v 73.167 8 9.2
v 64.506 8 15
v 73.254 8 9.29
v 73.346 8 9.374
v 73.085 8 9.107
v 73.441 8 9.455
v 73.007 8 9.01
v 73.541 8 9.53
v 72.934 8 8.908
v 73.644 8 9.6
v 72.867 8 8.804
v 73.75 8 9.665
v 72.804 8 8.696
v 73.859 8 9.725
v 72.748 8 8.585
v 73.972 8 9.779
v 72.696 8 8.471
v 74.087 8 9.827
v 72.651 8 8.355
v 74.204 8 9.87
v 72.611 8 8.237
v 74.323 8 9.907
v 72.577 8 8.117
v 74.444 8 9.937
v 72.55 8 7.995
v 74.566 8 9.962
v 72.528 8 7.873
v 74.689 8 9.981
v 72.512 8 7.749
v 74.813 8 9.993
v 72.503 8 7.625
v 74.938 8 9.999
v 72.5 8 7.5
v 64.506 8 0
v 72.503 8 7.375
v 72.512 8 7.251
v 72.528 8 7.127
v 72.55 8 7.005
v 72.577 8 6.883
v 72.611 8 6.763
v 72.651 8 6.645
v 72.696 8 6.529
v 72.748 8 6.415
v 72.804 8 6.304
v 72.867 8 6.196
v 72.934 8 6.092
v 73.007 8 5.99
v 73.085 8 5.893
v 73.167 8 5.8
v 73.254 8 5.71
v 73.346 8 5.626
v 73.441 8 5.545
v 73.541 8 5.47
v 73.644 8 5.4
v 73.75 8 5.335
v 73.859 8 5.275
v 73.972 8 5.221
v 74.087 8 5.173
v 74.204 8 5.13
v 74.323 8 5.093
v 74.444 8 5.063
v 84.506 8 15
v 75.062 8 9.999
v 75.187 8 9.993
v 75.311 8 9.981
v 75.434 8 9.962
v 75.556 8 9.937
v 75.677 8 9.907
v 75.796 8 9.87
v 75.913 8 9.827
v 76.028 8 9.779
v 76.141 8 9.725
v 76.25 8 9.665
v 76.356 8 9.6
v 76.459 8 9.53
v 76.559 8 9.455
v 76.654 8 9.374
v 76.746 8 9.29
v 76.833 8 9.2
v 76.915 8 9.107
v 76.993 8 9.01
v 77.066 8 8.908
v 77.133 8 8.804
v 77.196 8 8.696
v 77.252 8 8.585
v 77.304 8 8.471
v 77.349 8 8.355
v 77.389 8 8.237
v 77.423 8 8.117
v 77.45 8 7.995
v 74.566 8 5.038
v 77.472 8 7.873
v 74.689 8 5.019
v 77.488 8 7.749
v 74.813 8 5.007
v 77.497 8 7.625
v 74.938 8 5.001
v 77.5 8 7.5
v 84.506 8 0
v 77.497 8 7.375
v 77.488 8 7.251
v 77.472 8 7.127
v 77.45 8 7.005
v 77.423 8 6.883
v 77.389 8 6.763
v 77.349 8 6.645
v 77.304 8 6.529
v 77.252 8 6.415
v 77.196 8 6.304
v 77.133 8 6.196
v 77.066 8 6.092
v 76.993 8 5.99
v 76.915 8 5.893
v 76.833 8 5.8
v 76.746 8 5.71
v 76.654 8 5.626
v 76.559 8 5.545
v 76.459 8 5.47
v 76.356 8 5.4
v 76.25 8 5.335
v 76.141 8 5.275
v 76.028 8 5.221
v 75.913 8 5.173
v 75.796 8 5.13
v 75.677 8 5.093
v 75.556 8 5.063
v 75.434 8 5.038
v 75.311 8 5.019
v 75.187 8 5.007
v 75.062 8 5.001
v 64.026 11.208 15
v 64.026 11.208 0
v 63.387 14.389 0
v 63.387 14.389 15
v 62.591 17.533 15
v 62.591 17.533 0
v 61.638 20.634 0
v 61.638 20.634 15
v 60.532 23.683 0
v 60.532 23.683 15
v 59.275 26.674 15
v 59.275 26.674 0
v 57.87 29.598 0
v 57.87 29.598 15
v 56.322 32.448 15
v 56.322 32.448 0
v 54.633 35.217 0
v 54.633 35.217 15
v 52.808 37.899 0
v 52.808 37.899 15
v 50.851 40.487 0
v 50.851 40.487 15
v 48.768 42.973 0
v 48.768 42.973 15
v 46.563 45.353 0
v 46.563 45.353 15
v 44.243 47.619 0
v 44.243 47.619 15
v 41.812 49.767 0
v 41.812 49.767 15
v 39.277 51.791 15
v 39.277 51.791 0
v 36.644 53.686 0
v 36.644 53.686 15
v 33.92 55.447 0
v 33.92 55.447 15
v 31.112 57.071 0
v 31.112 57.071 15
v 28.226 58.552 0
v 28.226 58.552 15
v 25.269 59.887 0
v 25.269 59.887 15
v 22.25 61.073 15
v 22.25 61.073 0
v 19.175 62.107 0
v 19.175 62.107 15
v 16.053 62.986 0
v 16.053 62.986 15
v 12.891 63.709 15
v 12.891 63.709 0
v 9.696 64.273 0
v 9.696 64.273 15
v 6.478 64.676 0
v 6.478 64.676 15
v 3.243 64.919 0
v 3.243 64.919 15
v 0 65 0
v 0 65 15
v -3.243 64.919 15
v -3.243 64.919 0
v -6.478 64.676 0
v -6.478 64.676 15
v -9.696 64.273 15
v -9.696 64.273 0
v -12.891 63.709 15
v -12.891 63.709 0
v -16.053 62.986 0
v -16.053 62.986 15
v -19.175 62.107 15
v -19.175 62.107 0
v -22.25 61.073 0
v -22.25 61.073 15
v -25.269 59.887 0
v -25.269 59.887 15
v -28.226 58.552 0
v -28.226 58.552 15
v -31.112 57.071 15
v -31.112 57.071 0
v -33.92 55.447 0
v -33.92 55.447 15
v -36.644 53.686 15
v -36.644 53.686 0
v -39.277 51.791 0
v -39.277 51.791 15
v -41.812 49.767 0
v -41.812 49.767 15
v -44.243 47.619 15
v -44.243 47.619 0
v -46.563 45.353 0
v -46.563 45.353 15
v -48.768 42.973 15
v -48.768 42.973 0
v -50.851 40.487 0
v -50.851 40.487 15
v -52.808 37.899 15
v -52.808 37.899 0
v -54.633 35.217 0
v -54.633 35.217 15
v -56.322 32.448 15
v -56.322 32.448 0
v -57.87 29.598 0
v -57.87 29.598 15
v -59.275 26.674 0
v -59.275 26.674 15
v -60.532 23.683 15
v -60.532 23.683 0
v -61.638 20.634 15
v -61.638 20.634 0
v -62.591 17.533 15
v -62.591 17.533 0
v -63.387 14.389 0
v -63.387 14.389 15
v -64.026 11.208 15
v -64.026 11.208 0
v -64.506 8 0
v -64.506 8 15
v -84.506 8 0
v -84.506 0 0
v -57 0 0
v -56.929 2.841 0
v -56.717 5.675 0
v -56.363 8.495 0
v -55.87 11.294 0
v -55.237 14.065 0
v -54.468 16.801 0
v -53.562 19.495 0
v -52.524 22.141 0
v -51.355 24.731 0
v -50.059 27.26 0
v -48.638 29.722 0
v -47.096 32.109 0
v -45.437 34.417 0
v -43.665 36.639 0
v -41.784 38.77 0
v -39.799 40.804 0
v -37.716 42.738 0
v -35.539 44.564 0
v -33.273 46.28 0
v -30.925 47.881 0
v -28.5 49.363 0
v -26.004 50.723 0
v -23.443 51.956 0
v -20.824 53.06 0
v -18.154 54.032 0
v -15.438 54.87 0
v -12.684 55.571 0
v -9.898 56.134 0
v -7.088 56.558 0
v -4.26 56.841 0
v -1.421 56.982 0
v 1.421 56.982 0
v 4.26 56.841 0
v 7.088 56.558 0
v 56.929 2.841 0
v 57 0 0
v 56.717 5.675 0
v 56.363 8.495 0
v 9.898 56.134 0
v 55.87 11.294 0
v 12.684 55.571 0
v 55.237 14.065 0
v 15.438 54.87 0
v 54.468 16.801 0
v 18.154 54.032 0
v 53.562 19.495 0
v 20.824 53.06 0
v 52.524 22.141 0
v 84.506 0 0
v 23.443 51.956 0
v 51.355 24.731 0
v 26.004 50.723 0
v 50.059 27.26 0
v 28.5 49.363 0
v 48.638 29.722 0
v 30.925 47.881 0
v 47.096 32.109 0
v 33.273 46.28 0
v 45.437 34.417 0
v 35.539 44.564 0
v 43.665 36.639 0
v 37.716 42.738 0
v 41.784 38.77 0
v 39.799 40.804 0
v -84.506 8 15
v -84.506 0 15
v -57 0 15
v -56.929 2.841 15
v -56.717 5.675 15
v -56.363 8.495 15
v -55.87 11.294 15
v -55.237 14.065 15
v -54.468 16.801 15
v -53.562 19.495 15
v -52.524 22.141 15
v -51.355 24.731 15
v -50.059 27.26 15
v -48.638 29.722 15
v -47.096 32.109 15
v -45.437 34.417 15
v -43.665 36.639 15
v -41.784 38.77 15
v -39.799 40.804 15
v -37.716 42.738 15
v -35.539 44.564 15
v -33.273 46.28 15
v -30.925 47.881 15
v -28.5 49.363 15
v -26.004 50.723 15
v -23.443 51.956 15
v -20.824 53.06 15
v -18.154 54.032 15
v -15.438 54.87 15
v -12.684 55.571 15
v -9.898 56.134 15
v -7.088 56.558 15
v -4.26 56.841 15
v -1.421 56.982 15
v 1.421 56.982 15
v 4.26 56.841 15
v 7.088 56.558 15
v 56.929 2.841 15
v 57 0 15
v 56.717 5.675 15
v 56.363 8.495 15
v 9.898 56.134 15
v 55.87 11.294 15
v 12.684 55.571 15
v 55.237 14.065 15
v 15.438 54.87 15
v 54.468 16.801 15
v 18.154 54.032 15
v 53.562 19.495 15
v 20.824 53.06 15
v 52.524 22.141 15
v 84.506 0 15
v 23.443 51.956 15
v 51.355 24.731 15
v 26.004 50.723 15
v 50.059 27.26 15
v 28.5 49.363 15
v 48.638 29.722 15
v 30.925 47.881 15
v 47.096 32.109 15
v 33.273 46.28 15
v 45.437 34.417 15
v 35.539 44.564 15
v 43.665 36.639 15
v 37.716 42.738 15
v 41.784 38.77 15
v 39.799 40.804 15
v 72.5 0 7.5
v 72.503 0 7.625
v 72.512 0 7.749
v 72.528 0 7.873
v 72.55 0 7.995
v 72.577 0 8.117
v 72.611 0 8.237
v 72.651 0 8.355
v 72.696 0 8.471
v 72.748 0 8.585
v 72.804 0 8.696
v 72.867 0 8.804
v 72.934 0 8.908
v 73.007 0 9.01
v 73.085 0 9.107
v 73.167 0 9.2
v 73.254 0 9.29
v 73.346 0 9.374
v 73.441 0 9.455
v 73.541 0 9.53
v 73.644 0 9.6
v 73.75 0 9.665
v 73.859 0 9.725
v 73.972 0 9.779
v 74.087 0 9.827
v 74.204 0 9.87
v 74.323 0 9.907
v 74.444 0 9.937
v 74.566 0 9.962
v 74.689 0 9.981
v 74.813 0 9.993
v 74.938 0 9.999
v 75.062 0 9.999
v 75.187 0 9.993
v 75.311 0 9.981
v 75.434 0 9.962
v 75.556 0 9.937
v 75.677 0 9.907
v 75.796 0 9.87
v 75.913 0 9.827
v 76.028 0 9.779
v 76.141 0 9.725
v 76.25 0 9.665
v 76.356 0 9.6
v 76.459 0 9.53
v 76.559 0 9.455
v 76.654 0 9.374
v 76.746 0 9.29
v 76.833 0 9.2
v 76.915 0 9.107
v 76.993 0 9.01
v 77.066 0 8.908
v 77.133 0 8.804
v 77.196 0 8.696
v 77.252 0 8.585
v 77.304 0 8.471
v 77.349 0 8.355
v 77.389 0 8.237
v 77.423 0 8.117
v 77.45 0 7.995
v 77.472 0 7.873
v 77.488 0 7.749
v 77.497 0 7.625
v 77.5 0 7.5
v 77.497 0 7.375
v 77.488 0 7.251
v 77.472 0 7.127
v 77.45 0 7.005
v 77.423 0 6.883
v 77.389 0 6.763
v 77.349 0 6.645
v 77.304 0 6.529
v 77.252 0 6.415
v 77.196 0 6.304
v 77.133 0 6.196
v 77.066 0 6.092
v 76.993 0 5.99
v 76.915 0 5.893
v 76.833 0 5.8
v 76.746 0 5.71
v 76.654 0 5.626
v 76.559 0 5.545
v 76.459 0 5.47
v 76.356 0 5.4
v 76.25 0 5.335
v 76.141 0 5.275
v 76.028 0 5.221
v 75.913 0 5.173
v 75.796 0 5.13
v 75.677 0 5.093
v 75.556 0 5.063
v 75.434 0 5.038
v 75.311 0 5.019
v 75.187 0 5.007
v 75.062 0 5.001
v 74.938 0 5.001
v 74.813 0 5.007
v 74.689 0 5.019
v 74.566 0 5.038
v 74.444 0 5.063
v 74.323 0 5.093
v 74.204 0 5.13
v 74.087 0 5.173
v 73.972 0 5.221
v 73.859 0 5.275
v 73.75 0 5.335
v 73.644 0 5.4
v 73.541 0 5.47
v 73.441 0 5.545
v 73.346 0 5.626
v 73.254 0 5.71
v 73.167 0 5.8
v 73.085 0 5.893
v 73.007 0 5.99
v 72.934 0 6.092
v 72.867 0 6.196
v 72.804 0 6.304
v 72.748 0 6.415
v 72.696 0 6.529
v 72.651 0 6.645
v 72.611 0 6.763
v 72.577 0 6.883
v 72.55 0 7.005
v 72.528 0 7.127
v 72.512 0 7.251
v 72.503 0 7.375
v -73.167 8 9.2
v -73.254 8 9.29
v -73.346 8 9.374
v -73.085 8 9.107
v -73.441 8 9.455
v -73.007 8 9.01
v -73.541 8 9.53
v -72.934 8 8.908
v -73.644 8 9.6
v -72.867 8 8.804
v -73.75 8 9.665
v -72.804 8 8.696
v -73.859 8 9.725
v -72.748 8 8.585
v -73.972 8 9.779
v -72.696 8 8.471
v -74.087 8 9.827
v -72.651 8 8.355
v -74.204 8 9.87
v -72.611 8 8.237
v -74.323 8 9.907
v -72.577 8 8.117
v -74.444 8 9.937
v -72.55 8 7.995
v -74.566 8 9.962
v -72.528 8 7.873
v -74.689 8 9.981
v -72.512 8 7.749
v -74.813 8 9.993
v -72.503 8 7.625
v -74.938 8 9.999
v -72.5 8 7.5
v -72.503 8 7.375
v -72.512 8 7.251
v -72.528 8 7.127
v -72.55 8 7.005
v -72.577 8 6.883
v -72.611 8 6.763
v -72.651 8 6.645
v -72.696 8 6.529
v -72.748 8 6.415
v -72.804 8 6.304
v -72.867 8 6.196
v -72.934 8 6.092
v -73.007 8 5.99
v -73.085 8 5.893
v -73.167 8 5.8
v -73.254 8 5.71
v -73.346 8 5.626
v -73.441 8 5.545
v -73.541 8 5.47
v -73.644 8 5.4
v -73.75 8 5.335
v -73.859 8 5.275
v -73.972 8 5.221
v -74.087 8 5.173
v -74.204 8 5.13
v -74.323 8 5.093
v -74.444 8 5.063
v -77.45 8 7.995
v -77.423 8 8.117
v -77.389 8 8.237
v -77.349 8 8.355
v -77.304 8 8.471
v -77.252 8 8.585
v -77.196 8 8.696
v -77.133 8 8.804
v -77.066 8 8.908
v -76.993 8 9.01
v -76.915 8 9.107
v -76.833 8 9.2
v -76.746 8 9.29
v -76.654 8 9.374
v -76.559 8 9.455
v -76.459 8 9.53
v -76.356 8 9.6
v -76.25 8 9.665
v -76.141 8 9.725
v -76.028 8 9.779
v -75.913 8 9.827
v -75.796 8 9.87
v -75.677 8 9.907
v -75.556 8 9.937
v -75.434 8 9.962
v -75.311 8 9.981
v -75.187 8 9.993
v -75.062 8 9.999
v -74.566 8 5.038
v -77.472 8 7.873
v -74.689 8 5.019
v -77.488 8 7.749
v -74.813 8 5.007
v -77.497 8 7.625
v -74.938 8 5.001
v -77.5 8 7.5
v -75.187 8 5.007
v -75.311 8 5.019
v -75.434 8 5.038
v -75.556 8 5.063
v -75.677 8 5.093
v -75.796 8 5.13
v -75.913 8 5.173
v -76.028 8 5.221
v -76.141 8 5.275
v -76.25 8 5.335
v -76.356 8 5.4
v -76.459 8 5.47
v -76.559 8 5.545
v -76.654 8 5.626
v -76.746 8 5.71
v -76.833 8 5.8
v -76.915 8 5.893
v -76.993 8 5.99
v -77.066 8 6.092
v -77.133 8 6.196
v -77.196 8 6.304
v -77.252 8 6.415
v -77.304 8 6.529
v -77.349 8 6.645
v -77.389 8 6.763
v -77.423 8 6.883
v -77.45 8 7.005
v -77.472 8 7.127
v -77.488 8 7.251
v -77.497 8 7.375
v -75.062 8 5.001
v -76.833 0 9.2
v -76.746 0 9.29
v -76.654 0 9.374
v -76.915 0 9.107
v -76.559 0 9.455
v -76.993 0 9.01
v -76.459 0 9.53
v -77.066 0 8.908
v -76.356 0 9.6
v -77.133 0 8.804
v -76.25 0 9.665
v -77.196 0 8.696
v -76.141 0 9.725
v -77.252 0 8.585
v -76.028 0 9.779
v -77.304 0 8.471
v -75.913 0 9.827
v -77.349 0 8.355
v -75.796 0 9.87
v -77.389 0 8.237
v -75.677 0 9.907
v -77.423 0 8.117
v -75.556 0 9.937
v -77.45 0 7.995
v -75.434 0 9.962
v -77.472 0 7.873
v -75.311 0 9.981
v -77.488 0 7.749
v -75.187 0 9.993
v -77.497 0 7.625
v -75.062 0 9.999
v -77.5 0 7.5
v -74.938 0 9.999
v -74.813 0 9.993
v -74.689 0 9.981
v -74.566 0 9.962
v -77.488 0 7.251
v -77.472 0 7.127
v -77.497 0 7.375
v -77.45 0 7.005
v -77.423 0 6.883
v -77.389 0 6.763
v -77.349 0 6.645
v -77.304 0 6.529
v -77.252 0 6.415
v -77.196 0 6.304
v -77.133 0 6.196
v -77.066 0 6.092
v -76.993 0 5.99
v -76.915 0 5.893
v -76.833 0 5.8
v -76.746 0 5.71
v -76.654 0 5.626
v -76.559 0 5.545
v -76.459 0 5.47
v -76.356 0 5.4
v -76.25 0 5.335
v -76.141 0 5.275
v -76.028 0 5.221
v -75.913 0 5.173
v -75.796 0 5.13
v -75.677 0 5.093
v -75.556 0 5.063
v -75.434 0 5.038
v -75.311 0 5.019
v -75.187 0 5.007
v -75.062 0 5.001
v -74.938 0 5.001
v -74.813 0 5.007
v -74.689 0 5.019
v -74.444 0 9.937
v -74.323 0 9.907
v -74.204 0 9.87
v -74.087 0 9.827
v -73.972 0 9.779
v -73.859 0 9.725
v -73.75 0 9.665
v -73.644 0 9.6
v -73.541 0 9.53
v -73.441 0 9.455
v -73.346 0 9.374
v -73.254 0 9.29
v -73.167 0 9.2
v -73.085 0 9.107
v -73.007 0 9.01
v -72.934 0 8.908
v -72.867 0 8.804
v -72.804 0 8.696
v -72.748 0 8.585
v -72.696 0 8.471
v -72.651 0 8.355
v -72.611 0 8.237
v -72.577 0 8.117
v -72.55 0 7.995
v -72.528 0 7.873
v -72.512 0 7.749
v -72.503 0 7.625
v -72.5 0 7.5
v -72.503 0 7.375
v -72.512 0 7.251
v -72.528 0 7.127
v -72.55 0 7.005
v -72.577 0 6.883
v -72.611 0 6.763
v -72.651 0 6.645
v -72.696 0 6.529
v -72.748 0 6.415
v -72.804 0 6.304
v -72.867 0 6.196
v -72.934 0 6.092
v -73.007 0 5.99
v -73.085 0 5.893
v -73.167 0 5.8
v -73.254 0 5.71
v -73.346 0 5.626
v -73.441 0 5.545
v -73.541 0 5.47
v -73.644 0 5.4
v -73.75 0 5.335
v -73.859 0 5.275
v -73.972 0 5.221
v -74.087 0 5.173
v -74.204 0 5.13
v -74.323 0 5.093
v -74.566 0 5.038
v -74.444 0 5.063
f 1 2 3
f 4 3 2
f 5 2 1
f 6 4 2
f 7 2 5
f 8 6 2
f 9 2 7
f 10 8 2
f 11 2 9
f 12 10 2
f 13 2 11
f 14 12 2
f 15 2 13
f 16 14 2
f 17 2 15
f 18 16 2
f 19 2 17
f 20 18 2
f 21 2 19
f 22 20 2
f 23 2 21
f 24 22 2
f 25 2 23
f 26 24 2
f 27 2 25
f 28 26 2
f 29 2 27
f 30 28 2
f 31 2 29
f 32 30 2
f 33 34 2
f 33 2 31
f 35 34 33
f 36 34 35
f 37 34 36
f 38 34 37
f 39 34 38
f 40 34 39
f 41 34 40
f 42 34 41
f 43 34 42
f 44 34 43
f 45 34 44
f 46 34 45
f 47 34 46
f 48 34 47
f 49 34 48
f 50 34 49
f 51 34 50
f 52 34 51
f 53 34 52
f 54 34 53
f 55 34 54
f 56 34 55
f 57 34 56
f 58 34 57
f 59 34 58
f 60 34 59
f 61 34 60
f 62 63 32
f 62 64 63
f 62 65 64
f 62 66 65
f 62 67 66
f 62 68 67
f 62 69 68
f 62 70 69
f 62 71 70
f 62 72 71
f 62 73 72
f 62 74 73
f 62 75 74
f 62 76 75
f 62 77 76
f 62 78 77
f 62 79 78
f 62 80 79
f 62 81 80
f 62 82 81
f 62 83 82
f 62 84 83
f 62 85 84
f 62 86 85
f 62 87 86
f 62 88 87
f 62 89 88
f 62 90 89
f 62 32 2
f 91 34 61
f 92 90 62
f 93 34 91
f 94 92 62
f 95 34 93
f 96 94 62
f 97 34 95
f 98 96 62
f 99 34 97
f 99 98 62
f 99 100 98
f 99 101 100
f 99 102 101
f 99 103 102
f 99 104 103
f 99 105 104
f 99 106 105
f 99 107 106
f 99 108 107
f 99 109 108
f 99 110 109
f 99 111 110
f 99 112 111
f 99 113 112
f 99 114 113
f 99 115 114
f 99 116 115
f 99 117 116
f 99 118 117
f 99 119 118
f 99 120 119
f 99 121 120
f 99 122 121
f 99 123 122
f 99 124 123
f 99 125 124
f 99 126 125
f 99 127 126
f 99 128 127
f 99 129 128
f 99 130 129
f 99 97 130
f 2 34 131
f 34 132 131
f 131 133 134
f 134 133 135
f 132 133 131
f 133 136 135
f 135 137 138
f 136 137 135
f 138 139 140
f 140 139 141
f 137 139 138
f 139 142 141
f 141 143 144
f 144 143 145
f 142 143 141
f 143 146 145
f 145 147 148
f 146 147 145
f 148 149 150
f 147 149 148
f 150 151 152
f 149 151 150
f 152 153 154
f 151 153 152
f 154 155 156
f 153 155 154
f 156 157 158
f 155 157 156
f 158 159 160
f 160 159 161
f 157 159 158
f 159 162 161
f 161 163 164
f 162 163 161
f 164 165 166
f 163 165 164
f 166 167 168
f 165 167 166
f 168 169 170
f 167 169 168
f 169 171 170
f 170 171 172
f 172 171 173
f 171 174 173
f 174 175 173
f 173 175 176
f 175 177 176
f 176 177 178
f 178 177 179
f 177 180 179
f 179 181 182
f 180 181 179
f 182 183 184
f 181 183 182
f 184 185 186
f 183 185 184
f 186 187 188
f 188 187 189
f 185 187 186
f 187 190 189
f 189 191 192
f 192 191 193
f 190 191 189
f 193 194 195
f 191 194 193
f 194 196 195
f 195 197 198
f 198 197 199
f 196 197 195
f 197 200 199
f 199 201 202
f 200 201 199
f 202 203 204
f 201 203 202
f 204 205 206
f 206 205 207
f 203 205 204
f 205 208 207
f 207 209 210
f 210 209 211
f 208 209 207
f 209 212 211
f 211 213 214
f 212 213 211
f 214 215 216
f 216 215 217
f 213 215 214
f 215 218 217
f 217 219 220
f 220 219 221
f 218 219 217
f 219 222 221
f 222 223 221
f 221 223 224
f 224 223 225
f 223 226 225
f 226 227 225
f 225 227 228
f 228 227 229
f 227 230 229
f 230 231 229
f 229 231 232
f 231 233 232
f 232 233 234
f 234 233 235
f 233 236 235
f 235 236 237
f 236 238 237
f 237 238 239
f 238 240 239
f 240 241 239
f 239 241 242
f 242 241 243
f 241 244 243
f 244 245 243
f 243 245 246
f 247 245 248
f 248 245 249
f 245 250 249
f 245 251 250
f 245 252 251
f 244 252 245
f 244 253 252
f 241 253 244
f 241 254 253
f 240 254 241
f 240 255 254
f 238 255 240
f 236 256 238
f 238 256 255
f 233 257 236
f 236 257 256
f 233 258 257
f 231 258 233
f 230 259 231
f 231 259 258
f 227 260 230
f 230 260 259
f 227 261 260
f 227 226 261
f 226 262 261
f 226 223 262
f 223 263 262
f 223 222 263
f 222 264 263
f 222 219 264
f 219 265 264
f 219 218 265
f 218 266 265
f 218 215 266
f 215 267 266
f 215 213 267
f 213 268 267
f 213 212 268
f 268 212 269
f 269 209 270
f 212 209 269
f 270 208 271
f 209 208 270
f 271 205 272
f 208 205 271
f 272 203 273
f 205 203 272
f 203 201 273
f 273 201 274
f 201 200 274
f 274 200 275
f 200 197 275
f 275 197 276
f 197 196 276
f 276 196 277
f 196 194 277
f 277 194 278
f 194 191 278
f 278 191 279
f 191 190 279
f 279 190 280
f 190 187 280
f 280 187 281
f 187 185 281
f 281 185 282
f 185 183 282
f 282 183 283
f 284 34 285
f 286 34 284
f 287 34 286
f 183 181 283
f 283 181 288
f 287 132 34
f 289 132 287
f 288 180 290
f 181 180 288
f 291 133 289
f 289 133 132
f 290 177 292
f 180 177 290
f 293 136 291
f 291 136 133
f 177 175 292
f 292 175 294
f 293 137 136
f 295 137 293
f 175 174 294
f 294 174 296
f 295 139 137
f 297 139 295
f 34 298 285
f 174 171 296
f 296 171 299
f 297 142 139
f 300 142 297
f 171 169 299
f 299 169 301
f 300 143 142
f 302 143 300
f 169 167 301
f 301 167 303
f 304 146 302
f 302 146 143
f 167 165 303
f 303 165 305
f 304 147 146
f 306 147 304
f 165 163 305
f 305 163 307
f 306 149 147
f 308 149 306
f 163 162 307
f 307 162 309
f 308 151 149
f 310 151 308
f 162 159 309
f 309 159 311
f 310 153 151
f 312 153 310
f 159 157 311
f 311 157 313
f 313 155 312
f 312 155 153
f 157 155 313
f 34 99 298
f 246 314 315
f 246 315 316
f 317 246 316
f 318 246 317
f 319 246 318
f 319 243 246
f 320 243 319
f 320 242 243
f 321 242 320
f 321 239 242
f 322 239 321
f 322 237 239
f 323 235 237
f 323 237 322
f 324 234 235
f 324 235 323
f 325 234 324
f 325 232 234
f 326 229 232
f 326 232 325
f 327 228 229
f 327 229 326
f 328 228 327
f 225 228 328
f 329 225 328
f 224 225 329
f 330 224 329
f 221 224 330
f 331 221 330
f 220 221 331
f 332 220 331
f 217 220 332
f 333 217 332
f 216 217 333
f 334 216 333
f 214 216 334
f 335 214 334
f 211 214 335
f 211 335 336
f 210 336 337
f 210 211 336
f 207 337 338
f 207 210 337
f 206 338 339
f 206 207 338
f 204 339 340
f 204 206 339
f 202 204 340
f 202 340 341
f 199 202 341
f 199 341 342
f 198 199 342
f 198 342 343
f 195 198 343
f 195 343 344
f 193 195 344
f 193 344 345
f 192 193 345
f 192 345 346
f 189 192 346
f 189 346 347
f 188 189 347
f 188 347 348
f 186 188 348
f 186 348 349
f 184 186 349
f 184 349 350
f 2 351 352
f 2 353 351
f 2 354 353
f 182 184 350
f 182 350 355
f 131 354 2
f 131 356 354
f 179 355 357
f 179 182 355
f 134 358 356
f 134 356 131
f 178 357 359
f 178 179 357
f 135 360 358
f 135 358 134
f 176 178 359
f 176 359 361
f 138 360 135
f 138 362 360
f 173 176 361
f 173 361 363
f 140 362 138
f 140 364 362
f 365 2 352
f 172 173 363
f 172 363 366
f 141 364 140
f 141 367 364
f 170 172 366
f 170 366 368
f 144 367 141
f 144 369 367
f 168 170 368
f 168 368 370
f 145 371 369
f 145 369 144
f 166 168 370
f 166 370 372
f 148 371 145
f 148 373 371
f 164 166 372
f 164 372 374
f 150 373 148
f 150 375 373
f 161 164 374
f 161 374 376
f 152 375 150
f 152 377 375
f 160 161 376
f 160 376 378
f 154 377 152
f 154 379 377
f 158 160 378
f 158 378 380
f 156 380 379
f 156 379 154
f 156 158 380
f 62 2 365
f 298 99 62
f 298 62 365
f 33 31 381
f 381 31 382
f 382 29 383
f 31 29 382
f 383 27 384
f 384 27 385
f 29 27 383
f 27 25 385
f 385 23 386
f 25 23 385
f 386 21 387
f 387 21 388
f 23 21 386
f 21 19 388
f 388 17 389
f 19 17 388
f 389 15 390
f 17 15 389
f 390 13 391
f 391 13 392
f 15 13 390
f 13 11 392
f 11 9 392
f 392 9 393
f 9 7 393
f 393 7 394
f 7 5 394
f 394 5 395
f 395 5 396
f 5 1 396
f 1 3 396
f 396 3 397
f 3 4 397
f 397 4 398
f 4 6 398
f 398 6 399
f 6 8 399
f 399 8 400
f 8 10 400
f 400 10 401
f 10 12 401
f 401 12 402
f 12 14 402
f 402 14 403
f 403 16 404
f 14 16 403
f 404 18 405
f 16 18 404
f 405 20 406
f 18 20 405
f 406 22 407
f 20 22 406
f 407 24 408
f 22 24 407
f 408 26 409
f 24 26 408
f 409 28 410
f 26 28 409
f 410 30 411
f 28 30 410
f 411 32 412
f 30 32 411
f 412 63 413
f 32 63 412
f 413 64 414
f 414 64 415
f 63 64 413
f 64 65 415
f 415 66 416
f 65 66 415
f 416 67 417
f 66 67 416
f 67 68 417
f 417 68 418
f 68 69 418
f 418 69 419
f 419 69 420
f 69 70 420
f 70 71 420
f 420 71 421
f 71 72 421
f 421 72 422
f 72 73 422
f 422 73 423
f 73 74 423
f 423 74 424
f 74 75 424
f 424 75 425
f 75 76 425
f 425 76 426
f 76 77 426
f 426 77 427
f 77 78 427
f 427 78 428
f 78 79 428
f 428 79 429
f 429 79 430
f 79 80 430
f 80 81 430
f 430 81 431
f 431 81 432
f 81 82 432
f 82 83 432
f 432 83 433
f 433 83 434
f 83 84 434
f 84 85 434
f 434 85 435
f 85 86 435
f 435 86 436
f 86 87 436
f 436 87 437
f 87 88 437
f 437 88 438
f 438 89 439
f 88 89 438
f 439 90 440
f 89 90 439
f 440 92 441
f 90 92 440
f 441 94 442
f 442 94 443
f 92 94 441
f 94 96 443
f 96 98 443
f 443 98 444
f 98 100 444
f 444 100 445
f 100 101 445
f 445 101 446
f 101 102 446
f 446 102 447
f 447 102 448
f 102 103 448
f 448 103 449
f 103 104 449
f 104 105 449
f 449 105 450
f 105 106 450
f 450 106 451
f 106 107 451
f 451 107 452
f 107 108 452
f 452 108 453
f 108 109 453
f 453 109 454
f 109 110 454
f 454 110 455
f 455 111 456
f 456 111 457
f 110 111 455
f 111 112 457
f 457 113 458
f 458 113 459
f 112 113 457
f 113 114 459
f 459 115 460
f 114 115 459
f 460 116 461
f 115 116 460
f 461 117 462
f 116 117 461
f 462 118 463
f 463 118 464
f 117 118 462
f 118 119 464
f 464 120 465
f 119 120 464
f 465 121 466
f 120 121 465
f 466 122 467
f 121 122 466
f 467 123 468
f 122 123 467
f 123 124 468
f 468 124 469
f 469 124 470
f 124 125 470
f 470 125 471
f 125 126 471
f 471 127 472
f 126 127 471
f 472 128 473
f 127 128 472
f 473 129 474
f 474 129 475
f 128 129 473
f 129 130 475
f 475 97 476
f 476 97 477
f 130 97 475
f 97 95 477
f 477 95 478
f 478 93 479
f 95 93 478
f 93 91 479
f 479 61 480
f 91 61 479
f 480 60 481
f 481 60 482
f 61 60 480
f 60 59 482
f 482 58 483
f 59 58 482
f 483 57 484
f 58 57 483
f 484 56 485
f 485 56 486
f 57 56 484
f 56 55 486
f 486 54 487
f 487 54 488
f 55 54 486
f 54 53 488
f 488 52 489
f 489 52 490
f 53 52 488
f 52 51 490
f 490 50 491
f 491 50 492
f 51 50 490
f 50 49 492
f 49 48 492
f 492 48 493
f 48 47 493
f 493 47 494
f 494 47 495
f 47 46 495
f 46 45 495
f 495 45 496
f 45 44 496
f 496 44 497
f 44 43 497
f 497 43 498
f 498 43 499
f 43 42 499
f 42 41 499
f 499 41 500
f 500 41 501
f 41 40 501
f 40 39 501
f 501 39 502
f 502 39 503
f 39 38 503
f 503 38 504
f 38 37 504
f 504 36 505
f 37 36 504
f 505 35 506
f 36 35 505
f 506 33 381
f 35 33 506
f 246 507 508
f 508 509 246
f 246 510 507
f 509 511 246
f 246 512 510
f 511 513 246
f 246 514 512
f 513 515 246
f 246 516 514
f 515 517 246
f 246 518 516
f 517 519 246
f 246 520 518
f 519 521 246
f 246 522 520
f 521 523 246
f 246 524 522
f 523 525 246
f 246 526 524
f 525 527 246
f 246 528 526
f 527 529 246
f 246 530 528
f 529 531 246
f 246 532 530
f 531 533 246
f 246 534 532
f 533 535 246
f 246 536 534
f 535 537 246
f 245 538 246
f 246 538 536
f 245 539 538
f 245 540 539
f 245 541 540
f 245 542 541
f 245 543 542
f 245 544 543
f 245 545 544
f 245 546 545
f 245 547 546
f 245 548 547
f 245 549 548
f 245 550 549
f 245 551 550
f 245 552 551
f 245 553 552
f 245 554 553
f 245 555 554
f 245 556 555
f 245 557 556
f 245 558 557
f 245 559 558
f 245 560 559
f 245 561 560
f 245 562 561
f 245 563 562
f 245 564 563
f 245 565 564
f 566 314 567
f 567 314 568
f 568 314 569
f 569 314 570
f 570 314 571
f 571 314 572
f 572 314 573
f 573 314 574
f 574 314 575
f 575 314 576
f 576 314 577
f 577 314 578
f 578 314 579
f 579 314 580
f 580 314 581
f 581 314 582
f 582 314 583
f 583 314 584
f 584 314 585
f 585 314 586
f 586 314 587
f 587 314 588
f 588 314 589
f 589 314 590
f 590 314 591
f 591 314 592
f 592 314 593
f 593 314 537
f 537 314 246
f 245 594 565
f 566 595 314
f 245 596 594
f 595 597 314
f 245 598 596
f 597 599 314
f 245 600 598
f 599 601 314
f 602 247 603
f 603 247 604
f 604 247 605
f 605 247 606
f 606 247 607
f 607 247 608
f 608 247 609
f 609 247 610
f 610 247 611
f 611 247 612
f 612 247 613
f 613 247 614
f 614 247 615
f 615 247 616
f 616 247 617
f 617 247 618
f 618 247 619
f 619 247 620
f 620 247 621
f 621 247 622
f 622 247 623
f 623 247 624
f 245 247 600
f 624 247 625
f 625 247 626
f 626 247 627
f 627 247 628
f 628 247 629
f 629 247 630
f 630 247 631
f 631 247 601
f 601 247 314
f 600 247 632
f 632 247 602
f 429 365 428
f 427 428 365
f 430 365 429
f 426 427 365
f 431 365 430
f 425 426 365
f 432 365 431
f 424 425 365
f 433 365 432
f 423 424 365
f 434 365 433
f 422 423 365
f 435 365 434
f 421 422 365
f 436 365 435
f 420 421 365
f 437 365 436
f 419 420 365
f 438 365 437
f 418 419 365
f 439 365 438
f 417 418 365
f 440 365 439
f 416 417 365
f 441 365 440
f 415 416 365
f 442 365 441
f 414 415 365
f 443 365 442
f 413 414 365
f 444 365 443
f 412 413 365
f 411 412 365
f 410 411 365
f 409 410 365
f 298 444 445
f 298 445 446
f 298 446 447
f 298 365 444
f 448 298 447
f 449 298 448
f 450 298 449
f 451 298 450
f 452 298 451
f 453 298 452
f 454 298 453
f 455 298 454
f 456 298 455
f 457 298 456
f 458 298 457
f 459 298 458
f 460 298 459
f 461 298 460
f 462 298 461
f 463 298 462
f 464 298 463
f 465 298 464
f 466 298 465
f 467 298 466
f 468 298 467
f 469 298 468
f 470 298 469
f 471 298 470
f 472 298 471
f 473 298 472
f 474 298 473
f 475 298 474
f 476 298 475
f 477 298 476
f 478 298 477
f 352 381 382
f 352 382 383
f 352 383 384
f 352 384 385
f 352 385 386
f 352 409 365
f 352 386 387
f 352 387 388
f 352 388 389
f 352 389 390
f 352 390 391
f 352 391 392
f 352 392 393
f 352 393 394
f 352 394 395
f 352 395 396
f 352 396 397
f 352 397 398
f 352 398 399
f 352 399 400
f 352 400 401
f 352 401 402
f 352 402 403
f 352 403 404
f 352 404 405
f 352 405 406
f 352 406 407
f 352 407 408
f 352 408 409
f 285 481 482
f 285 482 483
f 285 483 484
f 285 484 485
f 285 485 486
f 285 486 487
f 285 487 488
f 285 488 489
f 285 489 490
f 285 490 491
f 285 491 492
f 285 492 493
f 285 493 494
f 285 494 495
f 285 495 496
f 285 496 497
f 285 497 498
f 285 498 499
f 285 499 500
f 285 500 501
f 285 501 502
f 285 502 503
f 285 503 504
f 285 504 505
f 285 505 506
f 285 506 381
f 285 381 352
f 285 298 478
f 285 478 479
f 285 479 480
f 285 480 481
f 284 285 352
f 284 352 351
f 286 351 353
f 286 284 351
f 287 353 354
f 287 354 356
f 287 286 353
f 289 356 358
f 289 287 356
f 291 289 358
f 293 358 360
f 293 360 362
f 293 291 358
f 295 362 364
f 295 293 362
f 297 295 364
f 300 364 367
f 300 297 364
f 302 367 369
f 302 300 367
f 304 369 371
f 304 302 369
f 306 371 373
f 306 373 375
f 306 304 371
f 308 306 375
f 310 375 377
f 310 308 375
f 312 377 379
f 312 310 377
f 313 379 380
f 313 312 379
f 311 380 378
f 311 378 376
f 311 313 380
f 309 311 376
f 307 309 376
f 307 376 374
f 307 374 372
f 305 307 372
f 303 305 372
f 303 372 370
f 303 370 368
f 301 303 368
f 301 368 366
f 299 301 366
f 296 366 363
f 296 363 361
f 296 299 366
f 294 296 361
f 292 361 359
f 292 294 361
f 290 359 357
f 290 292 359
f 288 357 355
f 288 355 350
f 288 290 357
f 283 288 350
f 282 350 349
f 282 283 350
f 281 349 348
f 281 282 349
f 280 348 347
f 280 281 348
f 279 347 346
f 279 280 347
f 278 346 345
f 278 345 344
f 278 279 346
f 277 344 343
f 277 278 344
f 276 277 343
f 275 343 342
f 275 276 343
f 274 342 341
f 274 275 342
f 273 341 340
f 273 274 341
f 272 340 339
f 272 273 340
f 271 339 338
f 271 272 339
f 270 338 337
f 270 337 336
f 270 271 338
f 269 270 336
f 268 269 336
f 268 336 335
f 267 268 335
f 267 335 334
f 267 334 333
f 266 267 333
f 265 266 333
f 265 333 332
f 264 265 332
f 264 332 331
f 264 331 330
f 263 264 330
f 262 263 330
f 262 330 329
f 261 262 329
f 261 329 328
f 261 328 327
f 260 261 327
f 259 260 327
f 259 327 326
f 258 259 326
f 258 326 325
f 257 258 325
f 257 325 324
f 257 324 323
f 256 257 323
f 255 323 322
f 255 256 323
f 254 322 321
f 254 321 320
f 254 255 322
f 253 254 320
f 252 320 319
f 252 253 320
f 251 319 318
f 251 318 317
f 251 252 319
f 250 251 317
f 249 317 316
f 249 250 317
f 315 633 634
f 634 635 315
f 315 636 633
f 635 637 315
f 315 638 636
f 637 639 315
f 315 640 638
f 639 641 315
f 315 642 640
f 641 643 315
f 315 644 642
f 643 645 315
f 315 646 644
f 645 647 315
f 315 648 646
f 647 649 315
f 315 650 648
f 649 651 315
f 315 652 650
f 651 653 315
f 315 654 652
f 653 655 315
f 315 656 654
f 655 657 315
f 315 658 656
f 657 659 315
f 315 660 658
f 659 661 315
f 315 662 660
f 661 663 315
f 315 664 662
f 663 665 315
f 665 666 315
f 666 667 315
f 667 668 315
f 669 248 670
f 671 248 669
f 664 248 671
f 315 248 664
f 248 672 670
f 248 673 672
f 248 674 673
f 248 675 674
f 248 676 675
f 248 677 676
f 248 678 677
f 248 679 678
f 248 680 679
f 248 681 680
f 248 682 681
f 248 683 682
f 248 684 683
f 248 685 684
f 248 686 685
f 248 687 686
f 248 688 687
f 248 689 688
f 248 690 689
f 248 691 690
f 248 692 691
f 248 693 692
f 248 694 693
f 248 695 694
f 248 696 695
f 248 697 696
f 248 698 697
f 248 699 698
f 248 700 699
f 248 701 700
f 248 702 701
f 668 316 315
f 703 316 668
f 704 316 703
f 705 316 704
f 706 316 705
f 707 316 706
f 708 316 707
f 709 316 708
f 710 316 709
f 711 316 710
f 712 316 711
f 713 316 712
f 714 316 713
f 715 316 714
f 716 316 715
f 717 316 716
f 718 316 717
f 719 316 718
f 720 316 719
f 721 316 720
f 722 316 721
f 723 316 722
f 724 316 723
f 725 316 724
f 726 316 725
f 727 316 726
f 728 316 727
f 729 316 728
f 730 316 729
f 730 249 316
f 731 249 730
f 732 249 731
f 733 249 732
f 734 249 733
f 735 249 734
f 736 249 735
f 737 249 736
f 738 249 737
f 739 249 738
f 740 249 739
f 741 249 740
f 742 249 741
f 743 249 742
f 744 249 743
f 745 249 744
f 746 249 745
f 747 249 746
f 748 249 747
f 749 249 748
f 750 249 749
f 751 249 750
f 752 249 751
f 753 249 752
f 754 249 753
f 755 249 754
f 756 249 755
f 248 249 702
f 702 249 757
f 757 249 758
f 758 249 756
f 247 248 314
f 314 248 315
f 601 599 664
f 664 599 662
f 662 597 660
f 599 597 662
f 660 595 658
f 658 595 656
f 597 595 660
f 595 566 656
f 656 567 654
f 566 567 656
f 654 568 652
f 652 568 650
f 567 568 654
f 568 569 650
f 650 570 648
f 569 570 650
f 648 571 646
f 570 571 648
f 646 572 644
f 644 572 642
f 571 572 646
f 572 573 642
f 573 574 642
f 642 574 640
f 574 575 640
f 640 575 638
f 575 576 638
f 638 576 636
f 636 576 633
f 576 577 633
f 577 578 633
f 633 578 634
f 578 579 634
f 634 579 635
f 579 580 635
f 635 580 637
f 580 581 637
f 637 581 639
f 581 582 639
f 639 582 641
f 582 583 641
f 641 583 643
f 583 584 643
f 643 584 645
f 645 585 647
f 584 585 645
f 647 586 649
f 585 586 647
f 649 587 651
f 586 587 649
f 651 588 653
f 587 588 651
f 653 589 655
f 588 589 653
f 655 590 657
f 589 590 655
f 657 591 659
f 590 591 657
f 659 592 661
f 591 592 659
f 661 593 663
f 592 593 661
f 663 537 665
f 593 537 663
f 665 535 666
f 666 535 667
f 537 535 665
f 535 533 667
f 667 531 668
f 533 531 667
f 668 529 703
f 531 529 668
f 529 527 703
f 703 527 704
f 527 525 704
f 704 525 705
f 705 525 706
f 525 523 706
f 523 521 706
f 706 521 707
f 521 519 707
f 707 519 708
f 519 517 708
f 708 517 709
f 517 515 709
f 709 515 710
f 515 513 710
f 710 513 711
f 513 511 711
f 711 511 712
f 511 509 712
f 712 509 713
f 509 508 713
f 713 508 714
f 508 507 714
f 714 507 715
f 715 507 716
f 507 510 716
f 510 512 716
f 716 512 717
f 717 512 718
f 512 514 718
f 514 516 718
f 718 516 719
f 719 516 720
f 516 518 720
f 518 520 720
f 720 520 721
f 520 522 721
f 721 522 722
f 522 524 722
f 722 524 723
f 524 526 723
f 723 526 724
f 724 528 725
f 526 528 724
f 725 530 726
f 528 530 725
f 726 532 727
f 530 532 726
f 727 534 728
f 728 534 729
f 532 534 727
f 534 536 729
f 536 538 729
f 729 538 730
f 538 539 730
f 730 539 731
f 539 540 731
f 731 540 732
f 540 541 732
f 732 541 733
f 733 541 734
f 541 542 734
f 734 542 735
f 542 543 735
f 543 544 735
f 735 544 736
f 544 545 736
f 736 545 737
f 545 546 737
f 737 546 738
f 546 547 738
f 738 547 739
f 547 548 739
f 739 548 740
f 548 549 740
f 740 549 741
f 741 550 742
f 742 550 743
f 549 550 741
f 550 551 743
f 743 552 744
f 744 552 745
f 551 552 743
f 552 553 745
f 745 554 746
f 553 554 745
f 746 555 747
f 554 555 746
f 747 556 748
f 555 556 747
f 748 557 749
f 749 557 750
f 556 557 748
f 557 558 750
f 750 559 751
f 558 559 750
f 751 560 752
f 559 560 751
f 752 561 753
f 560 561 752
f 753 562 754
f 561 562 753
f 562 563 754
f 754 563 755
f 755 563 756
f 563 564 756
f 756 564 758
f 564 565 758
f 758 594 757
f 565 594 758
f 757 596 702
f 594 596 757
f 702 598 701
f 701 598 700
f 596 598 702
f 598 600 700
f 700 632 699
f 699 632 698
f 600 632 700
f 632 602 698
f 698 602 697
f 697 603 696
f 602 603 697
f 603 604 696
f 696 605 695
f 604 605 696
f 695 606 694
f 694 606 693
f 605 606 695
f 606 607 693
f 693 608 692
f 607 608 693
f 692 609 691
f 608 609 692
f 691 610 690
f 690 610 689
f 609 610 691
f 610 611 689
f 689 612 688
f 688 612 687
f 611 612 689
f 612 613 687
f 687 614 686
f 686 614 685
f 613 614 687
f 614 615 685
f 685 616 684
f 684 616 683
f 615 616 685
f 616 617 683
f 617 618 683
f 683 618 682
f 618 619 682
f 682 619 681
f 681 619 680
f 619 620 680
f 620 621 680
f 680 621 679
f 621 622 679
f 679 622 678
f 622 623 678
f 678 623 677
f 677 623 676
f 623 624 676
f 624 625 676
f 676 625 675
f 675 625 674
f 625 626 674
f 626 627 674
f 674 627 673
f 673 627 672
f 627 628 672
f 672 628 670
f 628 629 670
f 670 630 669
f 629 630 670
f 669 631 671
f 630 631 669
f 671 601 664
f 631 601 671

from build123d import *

# Parameters (mm, degrees)
PAD_DEPTH    = 15
SKETCH001_R  = 2.5
POCKET_DEPTH = 10


with BuildPart() as part:
    # Sketch → Pad (new body)
    with BuildSketch(Plane.XY):
        with BuildLine():
            ThreePointArc((57, 0), (0, 57), (-57, 0))
            Line((-84.505814, 0), (-57, 0))
            Line((-84.505814, 8), (-84.505814, 0))
            Line((-64.505814, 8), (-84.505814, 8))
            ThreePointArc((64.505814, 8), (0, 65), (-64.505814, 8))
            Line((64.505814, 8), (84.505814, 8))
            Line((84.505814, 8), (84.505814, 0))
            Line((84.505814, 0), (57, 0))
        make_face()
    extrude(amount=PAD_DEPTH)

    # Sketch001 (on Face1 of Pad) → Pocket (cut)
    with BuildSketch(Plane(origin=(0, 8, 0), x_dir=(-1, 0, 0), z_dir=(0, 1, 0))):
        with Locations((-75, 7.5)):
            Circle(SKETCH001_R)
        with Locations((75, 7.5)):
            Circle(SKETCH001_R)
    extrude(amount=-POCKET_DEPTH, mode=Mode.SUBTRACT)


solid = part.part
